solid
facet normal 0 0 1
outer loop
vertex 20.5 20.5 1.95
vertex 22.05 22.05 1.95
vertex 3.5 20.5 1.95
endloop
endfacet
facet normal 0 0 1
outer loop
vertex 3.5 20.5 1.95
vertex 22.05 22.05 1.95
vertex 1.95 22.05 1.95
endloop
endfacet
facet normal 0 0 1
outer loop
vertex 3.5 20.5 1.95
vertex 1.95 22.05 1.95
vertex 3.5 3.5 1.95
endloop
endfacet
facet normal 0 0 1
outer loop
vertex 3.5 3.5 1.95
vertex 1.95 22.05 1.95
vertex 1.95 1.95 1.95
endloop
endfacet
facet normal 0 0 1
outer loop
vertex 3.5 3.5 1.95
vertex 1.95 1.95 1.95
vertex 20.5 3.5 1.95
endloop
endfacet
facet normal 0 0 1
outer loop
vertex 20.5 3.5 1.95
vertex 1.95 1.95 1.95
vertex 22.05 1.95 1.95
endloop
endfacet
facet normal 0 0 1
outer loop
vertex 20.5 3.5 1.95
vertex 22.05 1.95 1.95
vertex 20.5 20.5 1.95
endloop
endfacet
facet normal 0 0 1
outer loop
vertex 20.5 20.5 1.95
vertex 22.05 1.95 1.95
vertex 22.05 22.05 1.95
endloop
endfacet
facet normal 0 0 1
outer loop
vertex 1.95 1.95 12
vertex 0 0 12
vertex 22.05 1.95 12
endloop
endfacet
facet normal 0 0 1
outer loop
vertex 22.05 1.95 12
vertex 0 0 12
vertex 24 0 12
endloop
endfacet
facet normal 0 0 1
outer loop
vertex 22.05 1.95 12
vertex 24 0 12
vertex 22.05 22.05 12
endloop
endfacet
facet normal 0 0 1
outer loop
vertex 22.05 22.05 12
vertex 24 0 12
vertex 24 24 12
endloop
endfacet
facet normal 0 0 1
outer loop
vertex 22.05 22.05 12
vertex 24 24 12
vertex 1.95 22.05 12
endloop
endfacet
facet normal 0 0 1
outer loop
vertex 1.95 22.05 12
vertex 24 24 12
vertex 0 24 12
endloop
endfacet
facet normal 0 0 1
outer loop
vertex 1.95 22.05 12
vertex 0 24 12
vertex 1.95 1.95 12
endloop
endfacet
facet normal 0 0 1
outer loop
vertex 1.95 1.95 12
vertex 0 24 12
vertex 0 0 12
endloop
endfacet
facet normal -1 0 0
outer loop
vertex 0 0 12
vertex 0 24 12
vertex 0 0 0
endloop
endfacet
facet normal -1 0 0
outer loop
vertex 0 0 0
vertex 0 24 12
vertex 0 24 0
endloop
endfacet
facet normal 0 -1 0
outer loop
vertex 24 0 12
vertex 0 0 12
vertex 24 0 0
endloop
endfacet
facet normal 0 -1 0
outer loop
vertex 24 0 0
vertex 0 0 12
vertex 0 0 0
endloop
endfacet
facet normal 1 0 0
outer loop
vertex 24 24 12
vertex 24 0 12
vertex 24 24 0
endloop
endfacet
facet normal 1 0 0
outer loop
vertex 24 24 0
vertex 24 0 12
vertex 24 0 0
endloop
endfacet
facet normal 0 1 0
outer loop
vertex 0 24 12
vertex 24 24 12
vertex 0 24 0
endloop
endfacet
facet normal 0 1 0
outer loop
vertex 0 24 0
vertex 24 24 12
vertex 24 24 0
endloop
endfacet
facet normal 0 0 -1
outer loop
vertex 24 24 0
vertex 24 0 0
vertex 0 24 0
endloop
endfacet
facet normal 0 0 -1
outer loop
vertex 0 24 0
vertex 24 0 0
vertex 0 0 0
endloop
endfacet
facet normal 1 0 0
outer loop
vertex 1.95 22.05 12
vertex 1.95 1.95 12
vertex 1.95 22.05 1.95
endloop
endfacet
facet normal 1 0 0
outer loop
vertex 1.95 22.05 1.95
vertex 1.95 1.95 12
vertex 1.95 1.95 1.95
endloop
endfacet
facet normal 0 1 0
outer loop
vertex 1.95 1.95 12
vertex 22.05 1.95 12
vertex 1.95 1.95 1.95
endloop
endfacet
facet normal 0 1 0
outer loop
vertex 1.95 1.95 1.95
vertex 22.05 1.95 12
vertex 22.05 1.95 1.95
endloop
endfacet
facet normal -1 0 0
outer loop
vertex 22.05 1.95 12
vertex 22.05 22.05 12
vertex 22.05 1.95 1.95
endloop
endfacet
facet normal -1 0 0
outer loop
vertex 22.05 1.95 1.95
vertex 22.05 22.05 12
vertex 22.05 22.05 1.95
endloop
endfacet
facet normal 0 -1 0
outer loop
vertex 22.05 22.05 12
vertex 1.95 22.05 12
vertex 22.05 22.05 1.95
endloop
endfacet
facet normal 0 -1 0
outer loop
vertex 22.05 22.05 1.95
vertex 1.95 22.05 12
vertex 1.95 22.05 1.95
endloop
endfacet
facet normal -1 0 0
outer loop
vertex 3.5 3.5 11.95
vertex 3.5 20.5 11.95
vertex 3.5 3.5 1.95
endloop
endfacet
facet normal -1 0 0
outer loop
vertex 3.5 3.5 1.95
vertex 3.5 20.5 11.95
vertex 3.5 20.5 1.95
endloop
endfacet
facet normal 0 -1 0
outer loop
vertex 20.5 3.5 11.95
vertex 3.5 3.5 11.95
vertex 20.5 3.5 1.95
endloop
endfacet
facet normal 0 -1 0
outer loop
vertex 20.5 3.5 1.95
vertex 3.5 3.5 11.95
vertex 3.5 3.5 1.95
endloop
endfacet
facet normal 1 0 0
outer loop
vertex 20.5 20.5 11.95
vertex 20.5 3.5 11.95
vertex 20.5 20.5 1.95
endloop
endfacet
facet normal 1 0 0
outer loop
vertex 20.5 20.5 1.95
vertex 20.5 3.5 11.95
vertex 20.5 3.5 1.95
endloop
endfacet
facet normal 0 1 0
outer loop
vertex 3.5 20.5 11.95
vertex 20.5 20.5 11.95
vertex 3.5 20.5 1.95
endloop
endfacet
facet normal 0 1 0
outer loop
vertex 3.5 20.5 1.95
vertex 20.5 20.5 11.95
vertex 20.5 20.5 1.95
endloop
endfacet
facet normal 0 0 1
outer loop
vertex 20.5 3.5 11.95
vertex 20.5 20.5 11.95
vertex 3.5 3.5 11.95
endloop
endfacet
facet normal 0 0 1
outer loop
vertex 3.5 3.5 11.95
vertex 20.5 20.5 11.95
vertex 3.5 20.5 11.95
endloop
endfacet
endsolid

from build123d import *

# Parameters (mm, degrees)
SKETCH_1_W      = 24
SKETCH_1_H      = 24
EXTRUDE_5_DEPTH = 12
SHELL_2_T       = -1.95
SKETCH_5_W      = 17
SKETCH_5_H      = 17
EXTRUDE_6_DEPTH = 10


with BuildPart() as part:
    # ｽｹｯﾁ1 → ﾎﾞｽ - 押し出し5 (new body)
    with BuildSketch(Plane.XY):
        with Locations((12, 12)):
            Rectangle(SKETCH_1_W, SKETCH_1_H)
    extrude(amount=EXTRUDE_5_DEPTH)

    # ｼｪﾙ2
    shell_2_openings = [part.faces().sort_by_distance(p)[0] for p in [
        (12, 12, 12),
    ]]
    offset(amount=SHELL_2_T, openings=shell_2_openings, kind=Kind.INTERSECTION)

    # ｽｹｯﾁ5 → ﾎﾞｽ - 押し出し6 (add)
    with BuildSketch(Plane.XY.offset(1.95)):
        with Locations((12, 12)):
            Rectangle(SKETCH_5_W, SKETCH_5_H)
    extrude(amount=EXTRUDE_6_DEPTH)


solid = part.part
